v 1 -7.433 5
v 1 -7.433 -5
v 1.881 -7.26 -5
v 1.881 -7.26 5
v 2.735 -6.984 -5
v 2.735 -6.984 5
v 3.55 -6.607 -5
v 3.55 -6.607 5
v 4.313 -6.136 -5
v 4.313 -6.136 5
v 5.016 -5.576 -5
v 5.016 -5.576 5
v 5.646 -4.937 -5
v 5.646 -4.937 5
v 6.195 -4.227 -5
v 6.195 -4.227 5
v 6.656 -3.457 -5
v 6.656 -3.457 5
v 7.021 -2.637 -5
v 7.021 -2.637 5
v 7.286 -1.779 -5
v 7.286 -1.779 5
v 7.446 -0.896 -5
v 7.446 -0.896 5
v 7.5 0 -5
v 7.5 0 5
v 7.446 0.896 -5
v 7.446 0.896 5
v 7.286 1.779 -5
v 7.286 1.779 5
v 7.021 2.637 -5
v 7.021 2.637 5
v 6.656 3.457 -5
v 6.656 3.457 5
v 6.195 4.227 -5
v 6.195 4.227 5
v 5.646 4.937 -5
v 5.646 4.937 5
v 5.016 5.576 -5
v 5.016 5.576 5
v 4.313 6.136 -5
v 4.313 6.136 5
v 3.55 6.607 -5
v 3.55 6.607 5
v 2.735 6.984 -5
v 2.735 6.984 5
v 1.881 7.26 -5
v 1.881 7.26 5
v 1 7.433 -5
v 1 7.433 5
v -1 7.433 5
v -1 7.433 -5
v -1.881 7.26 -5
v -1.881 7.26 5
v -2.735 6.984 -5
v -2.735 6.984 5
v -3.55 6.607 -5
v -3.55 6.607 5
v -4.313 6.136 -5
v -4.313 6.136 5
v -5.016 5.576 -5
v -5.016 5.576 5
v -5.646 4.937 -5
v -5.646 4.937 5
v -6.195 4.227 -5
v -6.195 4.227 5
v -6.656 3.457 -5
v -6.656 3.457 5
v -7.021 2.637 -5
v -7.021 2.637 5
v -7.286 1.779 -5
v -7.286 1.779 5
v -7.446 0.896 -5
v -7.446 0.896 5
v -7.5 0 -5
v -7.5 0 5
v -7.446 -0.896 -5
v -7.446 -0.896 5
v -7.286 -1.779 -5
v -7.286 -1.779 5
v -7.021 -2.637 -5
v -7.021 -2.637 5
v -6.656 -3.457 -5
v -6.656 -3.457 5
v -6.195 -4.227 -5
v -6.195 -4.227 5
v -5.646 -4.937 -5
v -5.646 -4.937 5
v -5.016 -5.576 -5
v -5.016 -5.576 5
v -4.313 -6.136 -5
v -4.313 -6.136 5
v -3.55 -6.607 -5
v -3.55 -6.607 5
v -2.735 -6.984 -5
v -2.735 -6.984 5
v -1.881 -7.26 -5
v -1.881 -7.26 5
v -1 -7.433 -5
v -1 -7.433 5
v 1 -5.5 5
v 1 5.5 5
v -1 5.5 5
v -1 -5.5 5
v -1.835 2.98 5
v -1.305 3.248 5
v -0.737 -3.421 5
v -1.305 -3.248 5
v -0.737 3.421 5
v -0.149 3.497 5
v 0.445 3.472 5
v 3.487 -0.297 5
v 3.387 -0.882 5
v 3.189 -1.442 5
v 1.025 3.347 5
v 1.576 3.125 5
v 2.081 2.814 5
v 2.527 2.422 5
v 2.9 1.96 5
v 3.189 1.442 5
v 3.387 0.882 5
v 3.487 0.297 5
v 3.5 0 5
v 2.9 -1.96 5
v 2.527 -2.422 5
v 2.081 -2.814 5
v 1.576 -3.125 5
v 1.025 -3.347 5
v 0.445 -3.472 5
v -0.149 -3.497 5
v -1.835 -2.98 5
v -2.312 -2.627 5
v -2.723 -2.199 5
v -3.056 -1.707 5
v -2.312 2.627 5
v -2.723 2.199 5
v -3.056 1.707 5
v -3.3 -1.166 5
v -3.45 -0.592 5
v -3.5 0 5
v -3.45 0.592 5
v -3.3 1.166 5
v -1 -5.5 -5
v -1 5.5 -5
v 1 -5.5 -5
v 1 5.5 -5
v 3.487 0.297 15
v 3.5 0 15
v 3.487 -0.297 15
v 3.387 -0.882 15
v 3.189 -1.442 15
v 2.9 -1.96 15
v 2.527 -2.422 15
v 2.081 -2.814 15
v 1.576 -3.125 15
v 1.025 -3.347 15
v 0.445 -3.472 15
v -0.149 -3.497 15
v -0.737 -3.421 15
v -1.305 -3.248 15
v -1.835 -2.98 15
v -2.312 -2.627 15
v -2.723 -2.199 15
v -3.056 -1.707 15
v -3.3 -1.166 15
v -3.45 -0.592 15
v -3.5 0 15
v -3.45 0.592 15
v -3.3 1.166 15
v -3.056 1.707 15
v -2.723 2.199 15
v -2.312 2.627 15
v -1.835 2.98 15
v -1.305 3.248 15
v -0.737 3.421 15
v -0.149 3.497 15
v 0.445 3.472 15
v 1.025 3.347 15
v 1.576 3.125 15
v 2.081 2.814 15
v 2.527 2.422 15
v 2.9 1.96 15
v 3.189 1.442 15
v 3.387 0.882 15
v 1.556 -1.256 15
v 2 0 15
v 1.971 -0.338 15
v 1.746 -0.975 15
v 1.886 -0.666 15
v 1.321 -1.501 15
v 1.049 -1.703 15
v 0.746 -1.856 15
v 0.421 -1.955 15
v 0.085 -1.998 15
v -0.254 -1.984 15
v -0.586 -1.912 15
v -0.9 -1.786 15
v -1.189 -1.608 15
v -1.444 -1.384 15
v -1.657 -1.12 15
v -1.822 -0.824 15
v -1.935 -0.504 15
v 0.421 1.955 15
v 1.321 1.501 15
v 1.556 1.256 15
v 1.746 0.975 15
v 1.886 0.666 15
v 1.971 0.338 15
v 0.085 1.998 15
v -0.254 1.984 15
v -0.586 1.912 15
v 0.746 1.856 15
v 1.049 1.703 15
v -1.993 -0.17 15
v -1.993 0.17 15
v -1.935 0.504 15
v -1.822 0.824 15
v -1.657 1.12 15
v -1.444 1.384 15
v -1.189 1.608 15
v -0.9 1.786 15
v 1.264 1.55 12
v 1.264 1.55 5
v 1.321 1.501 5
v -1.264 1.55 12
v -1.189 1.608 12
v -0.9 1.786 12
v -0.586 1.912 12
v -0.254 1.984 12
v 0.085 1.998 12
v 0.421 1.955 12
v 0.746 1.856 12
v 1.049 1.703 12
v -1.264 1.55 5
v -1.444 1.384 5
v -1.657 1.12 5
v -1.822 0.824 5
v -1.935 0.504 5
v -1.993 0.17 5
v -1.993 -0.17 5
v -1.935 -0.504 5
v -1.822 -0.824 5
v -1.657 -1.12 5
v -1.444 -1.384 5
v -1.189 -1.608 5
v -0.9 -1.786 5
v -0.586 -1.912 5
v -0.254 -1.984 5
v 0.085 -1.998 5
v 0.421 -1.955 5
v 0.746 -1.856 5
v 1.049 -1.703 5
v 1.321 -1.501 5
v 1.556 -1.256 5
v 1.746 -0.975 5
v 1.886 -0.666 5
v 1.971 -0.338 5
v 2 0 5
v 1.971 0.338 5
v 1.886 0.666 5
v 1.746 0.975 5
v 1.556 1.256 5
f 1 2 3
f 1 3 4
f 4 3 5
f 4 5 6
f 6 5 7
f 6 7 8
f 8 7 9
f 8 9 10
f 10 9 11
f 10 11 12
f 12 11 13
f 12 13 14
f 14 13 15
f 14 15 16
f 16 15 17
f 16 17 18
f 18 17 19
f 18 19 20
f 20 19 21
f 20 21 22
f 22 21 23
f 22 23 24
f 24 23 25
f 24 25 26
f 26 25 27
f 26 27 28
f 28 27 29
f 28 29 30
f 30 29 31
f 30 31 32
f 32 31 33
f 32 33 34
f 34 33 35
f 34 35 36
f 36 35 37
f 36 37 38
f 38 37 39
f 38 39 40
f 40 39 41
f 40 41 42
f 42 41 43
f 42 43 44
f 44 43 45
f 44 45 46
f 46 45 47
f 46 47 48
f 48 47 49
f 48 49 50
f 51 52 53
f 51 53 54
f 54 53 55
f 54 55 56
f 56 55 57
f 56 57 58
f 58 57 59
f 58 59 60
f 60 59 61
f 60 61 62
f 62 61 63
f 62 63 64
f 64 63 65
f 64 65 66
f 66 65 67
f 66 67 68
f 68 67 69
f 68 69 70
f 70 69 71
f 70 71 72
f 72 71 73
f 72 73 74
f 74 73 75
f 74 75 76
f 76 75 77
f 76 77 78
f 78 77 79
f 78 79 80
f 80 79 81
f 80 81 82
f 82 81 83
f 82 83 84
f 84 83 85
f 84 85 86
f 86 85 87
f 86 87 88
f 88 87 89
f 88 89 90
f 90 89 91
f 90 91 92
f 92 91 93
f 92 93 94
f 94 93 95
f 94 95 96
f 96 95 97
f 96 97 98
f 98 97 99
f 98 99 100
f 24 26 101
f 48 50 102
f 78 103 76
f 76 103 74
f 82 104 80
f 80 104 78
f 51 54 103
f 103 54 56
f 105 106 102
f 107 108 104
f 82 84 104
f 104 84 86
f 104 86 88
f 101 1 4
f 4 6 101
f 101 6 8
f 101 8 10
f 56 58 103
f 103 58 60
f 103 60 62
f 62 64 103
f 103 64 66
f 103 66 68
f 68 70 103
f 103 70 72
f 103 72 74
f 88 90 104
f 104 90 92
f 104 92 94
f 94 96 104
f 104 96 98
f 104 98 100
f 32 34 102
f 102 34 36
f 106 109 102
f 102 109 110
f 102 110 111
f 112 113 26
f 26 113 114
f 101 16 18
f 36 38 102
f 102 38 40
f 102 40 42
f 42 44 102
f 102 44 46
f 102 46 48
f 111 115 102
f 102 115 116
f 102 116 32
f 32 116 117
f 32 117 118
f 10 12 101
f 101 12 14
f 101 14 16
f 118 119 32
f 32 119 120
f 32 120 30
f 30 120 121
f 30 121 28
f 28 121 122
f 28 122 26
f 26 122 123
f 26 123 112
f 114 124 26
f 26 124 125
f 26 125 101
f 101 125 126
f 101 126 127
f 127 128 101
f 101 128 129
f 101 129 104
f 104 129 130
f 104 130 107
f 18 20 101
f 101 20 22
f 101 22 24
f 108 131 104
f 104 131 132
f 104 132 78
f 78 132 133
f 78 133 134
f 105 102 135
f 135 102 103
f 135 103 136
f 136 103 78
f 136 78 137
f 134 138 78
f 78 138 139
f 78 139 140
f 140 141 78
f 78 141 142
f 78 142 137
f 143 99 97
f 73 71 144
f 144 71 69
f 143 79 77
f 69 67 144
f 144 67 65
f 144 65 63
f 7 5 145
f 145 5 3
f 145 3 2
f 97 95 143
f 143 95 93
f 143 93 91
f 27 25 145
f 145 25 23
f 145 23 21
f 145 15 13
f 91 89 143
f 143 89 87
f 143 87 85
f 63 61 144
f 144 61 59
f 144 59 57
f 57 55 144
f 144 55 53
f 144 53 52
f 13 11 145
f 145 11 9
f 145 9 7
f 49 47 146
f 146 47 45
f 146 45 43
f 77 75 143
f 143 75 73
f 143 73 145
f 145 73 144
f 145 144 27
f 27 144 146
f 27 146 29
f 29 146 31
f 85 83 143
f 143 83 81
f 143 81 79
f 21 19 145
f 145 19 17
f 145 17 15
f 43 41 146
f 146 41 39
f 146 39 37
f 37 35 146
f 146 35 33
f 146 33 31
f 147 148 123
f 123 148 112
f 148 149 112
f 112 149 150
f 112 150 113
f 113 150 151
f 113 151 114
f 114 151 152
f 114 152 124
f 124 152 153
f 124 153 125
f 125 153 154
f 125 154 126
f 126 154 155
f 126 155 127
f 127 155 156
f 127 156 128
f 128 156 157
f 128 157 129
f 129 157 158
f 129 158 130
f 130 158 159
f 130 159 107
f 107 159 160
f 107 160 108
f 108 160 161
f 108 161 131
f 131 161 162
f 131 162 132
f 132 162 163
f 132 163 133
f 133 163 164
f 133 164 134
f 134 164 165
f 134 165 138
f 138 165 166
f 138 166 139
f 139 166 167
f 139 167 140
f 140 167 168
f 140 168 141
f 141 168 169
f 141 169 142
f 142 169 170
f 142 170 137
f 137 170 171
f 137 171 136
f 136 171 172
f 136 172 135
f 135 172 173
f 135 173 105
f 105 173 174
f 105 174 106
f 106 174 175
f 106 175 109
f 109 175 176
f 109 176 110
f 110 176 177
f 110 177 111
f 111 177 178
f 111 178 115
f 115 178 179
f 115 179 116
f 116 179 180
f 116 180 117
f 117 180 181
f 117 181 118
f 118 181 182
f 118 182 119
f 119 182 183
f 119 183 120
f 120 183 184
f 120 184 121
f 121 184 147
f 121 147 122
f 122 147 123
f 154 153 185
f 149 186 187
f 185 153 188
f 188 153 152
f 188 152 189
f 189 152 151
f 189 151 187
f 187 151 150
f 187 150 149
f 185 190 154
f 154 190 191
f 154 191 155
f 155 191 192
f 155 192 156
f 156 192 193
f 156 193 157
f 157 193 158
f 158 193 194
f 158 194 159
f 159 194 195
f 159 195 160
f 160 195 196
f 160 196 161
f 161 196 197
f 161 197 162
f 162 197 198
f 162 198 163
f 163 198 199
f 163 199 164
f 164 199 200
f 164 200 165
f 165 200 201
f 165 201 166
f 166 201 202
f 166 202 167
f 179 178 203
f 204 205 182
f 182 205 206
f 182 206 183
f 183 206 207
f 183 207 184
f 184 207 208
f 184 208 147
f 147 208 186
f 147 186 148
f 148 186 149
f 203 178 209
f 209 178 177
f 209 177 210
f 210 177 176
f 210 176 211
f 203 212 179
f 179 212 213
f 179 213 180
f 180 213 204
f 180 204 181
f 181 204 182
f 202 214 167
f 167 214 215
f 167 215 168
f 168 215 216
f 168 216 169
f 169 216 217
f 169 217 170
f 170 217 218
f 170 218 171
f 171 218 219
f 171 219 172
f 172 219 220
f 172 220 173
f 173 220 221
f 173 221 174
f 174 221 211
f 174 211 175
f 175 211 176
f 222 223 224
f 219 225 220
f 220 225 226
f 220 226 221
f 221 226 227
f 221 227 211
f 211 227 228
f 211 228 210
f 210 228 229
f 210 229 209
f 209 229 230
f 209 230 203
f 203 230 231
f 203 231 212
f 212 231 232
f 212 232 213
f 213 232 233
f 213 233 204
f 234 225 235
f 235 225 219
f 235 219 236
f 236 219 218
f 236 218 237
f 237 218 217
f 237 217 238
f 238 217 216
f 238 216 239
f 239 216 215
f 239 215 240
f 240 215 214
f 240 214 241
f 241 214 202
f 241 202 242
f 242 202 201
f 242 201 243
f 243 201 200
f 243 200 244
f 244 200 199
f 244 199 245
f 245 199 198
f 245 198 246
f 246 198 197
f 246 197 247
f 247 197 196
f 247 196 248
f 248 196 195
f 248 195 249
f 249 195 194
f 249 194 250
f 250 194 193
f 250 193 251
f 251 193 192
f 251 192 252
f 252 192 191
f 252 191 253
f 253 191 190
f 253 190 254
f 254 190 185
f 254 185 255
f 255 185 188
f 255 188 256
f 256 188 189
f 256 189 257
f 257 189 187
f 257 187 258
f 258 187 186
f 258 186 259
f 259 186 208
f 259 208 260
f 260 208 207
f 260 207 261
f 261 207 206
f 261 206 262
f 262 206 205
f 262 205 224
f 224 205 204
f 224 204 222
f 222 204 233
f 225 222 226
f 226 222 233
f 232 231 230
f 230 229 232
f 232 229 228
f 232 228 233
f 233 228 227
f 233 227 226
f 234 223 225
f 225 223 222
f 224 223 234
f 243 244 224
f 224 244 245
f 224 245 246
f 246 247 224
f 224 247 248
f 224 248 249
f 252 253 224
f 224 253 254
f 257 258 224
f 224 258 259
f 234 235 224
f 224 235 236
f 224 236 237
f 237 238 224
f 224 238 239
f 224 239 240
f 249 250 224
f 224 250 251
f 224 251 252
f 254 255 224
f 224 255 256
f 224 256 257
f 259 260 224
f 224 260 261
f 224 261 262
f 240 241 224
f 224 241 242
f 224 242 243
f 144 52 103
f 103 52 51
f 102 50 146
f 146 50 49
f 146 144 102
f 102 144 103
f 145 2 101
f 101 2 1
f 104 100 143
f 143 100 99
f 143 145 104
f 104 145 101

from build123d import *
from build123d.topology import SkipClean

# Parameters (mm, degrees)
SKETCH_1_R               = 7.5
EXTRUDE_1_DEPTH          = 5
SKETCH_6_R               = 3.5
EXTRUDE_2_DEPTH          = 10
SKETCH_7_R               = 2
CUT_EXTRUDE_1_DEPTH      = 3
CUT_EXTRUDE_2_DEPTH      = 21.03746491
CUT_EXTRUDE_2_DEPTH_BACK = 7
SKETCH_10_W              = 2
SKETCH_10_H              = 2
CUT_EXTRUDE_4_DEPTH      = 10


with BuildPart() as part:
    # Эскиз1 → Бобышка-Вытянуть1 (new, symmetric)
    with BuildSketch(Plane.XY):
        Circle(SKETCH_1_R)
    extrude(amount=EXTRUDE_1_DEPTH, both=True)

    # Эскиз6 → Бобышка-Вытянуть2 (add)
    with BuildSketch(Plane.XY.offset(5)):
        Circle(SKETCH_6_R)
    extrude(amount=EXTRUDE_2_DEPTH)

    # Эскиз7 → Вырез-Вытянуть1 (cut)
    with BuildSketch(Plane.XY.offset(15)):
        Circle(SKETCH_7_R)
    extrude(amount=-CUT_EXTRUDE_1_DEPTH, mode=Mode.SUBTRACT)

    # Эскиз8 → Вырез-Вытянуть2 (cut, two sides: drawn at the far end of the back side and taken through both)
    with SkipClean():  # the faces are left unmerged after this step: merging them gives an invalid solid
        with BuildSketch(Plane.XY.offset(12).offset(-CUT_EXTRUDE_2_DEPTH_BACK)):
            with BuildLine():
                Line((1.263922466, 1.55), (-1.263922466, 1.55))
                ThreePointArc((-1.263922466, 1.55), (-0.85794961, -1.806632908), (2, 0))
                ThreePointArc((2, 0), (1.806632908, 0.85794961), (1.263922466, 1.55))
            make_face()
        extrude(amount=CUT_EXTRUDE_2_DEPTH + CUT_EXTRUDE_2_DEPTH_BACK, mode=Mode.SUBTRACT)

    # Эскиз10 → Вырез-Вытянуть4 (cut)
    with SkipClean():  # the faces are left unmerged after this step: merging them gives an invalid solid
        with BuildSketch(Plane.XY.offset(5)):
            with Locations((0, 6.5)):
                Rectangle(SKETCH_10_W, SKETCH_10_H)
            with Locations((0, -6.5)):
                Rectangle(SKETCH_10_W, SKETCH_10_H)
        extrude(amount=-CUT_EXTRUDE_4_DEPTH, mode=Mode.SUBTRACT)


solid = part.part
